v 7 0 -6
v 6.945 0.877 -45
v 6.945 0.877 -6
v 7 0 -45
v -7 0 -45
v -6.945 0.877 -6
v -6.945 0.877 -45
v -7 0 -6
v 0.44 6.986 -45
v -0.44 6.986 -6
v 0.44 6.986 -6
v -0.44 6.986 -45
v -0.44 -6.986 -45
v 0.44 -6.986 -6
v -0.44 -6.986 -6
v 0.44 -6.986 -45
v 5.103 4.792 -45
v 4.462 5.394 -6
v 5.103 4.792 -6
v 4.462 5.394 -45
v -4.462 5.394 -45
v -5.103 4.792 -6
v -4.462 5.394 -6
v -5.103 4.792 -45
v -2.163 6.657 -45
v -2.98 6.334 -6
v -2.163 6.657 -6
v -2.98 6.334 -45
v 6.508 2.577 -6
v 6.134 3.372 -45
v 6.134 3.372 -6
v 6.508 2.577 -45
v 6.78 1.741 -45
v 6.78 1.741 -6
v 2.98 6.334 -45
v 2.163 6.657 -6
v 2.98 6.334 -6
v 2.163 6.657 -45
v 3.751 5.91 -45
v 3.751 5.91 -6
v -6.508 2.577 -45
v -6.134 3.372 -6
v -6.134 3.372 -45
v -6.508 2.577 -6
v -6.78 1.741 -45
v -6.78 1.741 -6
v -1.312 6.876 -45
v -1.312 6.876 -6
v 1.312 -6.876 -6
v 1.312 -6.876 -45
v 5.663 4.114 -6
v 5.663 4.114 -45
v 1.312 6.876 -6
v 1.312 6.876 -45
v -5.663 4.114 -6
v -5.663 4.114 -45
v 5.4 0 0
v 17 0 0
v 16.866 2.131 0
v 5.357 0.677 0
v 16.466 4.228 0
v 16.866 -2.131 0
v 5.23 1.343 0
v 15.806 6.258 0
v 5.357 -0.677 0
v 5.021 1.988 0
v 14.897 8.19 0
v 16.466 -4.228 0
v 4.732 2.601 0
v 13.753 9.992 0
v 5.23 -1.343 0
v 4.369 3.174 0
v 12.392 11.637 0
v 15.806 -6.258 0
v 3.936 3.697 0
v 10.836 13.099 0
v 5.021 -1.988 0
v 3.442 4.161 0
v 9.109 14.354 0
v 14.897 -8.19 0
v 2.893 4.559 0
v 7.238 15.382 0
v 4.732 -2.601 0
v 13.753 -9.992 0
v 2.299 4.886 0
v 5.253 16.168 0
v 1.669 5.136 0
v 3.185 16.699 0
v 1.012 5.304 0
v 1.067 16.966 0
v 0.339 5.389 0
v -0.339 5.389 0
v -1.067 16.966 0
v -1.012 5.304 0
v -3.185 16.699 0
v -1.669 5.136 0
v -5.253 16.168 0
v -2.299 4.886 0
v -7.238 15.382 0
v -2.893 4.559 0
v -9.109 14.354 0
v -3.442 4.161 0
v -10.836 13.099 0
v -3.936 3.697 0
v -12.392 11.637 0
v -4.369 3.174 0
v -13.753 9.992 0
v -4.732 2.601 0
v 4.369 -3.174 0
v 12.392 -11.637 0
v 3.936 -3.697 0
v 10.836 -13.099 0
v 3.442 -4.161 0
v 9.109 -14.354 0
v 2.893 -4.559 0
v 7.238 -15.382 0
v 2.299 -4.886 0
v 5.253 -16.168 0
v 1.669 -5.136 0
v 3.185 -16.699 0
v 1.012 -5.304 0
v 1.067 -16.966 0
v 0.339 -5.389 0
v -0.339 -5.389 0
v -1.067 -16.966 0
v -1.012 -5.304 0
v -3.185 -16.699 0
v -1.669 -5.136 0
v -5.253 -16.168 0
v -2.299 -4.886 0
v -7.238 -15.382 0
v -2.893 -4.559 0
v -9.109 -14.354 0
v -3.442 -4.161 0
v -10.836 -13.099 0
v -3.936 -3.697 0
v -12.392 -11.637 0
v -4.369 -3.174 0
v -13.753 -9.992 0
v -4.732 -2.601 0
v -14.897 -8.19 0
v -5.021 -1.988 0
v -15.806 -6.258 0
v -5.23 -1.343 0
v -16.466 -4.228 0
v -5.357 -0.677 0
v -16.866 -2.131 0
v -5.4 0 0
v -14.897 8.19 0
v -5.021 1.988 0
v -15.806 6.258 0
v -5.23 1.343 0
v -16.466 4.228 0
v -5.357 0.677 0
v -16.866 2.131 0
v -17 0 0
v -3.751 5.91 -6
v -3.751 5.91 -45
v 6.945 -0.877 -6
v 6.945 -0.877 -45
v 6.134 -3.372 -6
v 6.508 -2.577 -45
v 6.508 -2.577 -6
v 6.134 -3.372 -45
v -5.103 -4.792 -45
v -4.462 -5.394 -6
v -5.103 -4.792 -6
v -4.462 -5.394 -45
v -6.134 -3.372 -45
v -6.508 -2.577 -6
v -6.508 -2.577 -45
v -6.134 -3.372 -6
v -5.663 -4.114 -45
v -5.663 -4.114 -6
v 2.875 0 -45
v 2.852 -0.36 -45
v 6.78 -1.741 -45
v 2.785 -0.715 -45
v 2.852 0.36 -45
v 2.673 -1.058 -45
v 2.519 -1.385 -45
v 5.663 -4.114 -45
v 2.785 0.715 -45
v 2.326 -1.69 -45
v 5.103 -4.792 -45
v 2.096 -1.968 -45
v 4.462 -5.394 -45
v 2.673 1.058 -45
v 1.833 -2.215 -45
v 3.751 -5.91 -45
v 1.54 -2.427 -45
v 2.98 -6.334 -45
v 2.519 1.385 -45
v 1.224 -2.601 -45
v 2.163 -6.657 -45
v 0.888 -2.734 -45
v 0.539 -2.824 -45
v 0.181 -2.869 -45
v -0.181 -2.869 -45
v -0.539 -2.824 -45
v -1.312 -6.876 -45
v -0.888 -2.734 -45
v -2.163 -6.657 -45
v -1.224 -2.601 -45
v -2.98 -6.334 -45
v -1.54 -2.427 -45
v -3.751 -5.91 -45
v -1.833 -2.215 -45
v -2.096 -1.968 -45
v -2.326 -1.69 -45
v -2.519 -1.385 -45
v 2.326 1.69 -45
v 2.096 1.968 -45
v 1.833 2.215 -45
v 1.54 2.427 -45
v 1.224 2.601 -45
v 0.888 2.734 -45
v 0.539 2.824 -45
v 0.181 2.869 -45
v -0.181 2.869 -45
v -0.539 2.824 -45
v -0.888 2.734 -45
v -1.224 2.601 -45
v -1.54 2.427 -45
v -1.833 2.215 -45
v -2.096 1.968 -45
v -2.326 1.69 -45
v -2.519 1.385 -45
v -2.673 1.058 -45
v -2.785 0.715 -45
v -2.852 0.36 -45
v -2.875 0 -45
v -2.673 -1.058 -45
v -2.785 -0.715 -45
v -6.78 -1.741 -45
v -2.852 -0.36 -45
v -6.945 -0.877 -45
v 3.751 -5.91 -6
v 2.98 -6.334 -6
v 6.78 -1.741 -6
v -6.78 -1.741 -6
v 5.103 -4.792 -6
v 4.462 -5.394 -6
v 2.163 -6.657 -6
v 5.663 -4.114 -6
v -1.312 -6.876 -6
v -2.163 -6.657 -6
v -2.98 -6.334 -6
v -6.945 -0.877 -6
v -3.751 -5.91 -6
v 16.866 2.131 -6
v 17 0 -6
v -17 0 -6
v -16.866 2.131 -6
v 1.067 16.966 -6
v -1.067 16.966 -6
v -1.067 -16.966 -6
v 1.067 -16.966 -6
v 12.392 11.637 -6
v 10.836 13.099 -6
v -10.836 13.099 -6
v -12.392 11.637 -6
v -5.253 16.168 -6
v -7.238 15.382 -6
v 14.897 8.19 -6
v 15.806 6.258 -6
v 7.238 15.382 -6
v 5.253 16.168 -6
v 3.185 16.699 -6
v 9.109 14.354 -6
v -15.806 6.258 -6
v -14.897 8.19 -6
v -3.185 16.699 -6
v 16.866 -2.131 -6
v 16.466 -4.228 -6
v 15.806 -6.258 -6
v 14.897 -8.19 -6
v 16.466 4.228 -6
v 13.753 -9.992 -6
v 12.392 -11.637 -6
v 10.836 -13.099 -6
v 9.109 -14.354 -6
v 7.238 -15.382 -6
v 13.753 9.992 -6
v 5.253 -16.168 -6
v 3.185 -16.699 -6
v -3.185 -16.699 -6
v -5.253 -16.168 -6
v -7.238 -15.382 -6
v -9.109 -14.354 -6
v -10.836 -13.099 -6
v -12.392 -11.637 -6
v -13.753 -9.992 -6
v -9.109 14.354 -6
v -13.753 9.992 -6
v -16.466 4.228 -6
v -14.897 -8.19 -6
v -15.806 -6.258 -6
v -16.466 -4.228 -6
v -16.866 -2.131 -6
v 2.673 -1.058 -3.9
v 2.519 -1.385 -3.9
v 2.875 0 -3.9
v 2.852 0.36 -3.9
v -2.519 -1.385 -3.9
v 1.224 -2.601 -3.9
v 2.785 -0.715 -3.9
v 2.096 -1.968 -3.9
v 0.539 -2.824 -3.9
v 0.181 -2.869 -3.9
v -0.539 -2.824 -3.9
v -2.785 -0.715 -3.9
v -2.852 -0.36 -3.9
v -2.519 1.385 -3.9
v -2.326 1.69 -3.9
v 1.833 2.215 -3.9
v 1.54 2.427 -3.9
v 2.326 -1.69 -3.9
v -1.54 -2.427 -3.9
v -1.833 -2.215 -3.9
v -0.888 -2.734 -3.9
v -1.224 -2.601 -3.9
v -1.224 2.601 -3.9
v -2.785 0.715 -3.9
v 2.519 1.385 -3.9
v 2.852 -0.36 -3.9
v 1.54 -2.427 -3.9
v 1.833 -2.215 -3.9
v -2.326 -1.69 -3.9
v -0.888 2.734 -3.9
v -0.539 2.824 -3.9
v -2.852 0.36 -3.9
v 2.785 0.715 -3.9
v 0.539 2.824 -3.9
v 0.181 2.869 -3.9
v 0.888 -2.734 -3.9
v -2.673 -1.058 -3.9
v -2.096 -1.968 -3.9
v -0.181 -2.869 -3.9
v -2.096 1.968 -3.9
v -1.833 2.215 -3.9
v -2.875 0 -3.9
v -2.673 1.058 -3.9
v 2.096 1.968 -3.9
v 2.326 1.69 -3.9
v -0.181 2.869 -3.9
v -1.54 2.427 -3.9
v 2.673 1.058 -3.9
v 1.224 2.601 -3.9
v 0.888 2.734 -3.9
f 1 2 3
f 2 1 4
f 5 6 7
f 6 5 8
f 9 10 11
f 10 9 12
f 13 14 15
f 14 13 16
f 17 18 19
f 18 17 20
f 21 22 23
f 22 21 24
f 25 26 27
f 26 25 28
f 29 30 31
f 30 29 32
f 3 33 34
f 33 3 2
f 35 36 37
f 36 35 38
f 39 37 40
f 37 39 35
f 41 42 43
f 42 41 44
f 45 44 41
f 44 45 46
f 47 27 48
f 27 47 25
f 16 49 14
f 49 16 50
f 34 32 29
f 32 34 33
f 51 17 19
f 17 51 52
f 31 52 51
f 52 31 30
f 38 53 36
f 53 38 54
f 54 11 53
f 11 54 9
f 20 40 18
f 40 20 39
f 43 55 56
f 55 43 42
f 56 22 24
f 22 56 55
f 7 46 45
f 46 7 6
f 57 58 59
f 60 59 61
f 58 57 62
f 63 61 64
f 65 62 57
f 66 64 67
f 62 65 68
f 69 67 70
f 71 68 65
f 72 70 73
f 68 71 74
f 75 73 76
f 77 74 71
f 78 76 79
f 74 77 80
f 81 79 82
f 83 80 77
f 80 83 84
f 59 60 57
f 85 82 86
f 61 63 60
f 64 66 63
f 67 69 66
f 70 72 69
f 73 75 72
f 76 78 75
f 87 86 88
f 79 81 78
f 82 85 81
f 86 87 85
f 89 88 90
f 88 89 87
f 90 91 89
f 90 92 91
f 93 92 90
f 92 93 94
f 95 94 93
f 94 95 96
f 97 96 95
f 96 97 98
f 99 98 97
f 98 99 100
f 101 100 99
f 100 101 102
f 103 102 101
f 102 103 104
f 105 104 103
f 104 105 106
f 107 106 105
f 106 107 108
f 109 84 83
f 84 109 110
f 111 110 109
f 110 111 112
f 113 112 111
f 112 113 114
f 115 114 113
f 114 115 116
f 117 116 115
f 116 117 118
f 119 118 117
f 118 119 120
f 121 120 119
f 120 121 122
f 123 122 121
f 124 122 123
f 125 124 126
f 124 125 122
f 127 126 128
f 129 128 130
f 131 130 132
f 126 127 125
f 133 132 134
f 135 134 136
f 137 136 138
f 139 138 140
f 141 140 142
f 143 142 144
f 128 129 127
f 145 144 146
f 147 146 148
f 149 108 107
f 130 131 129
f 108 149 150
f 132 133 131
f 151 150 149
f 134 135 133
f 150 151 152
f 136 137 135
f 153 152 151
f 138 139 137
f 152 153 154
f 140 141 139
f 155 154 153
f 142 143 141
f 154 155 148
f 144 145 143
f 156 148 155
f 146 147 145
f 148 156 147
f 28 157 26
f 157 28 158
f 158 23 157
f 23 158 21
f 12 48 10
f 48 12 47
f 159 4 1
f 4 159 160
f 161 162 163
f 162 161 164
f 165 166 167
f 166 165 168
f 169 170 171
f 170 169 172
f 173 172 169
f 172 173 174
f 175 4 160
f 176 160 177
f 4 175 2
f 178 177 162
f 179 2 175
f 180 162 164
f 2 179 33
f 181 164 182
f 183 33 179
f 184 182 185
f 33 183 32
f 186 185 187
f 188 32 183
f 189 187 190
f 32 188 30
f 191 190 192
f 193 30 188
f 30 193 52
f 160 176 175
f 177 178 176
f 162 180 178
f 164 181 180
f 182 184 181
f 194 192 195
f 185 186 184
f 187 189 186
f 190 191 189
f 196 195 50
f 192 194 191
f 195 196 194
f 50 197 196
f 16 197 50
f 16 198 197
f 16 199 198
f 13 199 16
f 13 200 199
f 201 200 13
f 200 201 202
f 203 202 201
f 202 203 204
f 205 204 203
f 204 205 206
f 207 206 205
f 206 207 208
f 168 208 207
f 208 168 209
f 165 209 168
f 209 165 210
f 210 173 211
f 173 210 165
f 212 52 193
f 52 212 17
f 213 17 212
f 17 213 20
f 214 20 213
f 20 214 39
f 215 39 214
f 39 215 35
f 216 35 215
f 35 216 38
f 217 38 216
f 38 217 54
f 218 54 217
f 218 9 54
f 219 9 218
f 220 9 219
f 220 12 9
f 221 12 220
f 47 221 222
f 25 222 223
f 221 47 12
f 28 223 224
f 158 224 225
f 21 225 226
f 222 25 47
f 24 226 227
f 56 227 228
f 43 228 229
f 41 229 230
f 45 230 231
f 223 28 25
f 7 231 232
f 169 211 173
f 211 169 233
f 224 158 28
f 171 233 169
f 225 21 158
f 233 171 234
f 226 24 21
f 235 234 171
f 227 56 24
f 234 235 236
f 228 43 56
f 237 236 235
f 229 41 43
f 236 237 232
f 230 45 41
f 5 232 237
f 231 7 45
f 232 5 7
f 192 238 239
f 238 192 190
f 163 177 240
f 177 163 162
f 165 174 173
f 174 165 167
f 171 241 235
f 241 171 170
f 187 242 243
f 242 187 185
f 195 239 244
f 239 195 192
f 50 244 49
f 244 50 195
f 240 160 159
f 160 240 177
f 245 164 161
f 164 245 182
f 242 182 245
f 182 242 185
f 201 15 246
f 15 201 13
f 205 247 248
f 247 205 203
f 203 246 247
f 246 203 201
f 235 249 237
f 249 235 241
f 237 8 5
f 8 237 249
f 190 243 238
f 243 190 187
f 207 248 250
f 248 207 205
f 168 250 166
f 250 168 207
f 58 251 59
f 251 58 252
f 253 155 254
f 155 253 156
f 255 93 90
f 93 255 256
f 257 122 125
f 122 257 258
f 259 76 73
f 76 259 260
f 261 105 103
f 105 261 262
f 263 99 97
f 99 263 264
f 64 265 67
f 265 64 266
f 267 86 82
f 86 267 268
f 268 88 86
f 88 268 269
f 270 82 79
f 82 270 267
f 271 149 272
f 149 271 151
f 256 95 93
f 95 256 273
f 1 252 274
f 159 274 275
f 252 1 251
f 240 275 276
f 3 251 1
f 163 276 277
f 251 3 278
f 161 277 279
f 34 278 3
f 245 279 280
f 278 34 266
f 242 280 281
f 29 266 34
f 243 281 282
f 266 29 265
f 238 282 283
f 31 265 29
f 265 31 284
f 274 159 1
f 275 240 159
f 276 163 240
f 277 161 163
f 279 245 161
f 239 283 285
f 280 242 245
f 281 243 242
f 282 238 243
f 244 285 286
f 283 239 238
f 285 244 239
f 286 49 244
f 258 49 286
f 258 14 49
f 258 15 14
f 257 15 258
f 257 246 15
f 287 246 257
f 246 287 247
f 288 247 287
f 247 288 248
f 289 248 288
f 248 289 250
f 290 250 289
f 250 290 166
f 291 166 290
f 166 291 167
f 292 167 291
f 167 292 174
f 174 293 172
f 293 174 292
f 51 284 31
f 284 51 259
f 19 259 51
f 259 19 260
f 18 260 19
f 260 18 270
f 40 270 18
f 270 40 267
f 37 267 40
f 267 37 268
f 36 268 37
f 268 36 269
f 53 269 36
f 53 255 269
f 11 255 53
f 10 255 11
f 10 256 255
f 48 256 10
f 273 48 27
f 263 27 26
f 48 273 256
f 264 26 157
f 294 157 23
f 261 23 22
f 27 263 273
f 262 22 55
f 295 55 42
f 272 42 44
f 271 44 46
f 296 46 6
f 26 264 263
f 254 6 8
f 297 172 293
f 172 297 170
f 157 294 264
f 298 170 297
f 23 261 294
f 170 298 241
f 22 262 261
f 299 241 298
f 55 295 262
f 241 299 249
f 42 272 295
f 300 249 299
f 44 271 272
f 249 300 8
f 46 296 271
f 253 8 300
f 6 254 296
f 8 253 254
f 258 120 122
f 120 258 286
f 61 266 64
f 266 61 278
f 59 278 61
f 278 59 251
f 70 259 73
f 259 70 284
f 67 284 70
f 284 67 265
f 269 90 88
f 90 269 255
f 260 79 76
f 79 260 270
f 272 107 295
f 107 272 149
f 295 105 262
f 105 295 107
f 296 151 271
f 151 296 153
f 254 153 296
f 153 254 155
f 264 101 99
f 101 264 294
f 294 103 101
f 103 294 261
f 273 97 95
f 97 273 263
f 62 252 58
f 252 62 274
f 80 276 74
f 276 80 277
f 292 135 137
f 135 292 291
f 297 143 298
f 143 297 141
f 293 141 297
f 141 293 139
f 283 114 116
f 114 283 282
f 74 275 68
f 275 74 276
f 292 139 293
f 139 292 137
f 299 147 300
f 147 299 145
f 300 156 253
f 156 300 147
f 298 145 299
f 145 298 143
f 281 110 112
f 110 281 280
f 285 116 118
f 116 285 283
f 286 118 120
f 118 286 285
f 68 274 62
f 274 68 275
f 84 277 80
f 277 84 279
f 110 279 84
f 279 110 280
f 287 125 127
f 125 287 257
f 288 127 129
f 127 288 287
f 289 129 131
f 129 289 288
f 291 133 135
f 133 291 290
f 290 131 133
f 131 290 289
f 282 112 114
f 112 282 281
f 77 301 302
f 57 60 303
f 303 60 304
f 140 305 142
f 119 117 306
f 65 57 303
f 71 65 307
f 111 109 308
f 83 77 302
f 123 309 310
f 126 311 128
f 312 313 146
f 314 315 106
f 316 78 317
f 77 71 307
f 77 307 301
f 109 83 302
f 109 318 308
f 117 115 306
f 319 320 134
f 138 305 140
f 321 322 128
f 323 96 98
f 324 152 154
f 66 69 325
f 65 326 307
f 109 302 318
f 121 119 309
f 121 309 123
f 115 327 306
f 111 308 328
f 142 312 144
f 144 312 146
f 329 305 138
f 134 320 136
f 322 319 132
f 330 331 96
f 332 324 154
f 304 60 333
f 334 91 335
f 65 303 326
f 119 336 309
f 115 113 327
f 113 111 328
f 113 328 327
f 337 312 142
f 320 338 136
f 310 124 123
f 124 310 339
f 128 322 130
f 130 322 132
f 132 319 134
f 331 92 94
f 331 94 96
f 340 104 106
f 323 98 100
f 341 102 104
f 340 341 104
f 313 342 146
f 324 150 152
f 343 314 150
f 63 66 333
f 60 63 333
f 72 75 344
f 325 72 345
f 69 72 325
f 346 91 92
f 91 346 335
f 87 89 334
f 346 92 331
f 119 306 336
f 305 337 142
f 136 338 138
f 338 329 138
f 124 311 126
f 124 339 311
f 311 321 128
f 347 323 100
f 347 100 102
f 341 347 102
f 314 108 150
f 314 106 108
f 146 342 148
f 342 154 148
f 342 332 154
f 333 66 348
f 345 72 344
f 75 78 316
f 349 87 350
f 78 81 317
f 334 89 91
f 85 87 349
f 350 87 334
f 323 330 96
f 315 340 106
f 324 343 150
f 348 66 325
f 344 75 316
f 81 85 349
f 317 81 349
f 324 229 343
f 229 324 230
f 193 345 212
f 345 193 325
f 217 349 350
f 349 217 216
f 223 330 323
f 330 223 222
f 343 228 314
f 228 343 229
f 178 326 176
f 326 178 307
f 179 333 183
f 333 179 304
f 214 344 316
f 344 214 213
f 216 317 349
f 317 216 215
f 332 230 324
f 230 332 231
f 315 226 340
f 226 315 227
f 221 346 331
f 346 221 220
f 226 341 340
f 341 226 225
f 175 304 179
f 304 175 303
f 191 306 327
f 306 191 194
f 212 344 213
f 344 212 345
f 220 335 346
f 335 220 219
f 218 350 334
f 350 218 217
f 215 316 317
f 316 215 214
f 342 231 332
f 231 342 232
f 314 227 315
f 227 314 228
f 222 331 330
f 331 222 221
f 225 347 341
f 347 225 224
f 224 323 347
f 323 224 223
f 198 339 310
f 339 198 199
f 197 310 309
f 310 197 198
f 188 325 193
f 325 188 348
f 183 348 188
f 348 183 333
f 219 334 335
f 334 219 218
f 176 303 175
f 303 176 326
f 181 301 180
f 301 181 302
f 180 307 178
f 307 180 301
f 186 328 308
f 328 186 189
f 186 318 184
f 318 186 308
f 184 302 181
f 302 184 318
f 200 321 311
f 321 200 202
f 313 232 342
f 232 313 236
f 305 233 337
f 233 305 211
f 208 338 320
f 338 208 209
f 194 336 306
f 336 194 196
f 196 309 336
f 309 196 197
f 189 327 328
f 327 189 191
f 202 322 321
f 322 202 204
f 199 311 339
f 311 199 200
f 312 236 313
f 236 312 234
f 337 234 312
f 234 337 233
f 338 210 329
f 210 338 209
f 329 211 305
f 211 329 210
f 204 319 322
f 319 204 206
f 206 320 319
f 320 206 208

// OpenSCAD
$fn = 50;


difference() {
	union() {
		translate(v = [0, 0, -45.0000000000]) {
			cylinder(h = 45, r = 7.0000000000);
		}
		translate(v = [0, 0, -6.0000000000]) {
			cylinder(h = 6, r = 17.0000000000);
		}
	}
	union() {
		translate(v = [0, 0, 0]) {
			rotate(a = [0, 0, 0]) {
				difference() {
					union() {
						#translate(v = [0, 0, -45.0000000000]) {
							cylinder(h = 45, r = 2.6000000000);
						}
						#translate(v = [0, 0, -3.9000000000]) {
							cylinder(h = 3.9000000000, r1 = 2.8750000000, r2 = 5.4000000000);
						}
						#translate(v = [0, 0, -45.0000000000]) {
							cylinder(h = 45, r = 2.8750000000);
						}
						#translate(v = [0, 0, -45.0000000000]) {
							cylinder(h = 45, r = 2.6000000000);
						}
					}
					union();
				}
			}
		}
	}
}
